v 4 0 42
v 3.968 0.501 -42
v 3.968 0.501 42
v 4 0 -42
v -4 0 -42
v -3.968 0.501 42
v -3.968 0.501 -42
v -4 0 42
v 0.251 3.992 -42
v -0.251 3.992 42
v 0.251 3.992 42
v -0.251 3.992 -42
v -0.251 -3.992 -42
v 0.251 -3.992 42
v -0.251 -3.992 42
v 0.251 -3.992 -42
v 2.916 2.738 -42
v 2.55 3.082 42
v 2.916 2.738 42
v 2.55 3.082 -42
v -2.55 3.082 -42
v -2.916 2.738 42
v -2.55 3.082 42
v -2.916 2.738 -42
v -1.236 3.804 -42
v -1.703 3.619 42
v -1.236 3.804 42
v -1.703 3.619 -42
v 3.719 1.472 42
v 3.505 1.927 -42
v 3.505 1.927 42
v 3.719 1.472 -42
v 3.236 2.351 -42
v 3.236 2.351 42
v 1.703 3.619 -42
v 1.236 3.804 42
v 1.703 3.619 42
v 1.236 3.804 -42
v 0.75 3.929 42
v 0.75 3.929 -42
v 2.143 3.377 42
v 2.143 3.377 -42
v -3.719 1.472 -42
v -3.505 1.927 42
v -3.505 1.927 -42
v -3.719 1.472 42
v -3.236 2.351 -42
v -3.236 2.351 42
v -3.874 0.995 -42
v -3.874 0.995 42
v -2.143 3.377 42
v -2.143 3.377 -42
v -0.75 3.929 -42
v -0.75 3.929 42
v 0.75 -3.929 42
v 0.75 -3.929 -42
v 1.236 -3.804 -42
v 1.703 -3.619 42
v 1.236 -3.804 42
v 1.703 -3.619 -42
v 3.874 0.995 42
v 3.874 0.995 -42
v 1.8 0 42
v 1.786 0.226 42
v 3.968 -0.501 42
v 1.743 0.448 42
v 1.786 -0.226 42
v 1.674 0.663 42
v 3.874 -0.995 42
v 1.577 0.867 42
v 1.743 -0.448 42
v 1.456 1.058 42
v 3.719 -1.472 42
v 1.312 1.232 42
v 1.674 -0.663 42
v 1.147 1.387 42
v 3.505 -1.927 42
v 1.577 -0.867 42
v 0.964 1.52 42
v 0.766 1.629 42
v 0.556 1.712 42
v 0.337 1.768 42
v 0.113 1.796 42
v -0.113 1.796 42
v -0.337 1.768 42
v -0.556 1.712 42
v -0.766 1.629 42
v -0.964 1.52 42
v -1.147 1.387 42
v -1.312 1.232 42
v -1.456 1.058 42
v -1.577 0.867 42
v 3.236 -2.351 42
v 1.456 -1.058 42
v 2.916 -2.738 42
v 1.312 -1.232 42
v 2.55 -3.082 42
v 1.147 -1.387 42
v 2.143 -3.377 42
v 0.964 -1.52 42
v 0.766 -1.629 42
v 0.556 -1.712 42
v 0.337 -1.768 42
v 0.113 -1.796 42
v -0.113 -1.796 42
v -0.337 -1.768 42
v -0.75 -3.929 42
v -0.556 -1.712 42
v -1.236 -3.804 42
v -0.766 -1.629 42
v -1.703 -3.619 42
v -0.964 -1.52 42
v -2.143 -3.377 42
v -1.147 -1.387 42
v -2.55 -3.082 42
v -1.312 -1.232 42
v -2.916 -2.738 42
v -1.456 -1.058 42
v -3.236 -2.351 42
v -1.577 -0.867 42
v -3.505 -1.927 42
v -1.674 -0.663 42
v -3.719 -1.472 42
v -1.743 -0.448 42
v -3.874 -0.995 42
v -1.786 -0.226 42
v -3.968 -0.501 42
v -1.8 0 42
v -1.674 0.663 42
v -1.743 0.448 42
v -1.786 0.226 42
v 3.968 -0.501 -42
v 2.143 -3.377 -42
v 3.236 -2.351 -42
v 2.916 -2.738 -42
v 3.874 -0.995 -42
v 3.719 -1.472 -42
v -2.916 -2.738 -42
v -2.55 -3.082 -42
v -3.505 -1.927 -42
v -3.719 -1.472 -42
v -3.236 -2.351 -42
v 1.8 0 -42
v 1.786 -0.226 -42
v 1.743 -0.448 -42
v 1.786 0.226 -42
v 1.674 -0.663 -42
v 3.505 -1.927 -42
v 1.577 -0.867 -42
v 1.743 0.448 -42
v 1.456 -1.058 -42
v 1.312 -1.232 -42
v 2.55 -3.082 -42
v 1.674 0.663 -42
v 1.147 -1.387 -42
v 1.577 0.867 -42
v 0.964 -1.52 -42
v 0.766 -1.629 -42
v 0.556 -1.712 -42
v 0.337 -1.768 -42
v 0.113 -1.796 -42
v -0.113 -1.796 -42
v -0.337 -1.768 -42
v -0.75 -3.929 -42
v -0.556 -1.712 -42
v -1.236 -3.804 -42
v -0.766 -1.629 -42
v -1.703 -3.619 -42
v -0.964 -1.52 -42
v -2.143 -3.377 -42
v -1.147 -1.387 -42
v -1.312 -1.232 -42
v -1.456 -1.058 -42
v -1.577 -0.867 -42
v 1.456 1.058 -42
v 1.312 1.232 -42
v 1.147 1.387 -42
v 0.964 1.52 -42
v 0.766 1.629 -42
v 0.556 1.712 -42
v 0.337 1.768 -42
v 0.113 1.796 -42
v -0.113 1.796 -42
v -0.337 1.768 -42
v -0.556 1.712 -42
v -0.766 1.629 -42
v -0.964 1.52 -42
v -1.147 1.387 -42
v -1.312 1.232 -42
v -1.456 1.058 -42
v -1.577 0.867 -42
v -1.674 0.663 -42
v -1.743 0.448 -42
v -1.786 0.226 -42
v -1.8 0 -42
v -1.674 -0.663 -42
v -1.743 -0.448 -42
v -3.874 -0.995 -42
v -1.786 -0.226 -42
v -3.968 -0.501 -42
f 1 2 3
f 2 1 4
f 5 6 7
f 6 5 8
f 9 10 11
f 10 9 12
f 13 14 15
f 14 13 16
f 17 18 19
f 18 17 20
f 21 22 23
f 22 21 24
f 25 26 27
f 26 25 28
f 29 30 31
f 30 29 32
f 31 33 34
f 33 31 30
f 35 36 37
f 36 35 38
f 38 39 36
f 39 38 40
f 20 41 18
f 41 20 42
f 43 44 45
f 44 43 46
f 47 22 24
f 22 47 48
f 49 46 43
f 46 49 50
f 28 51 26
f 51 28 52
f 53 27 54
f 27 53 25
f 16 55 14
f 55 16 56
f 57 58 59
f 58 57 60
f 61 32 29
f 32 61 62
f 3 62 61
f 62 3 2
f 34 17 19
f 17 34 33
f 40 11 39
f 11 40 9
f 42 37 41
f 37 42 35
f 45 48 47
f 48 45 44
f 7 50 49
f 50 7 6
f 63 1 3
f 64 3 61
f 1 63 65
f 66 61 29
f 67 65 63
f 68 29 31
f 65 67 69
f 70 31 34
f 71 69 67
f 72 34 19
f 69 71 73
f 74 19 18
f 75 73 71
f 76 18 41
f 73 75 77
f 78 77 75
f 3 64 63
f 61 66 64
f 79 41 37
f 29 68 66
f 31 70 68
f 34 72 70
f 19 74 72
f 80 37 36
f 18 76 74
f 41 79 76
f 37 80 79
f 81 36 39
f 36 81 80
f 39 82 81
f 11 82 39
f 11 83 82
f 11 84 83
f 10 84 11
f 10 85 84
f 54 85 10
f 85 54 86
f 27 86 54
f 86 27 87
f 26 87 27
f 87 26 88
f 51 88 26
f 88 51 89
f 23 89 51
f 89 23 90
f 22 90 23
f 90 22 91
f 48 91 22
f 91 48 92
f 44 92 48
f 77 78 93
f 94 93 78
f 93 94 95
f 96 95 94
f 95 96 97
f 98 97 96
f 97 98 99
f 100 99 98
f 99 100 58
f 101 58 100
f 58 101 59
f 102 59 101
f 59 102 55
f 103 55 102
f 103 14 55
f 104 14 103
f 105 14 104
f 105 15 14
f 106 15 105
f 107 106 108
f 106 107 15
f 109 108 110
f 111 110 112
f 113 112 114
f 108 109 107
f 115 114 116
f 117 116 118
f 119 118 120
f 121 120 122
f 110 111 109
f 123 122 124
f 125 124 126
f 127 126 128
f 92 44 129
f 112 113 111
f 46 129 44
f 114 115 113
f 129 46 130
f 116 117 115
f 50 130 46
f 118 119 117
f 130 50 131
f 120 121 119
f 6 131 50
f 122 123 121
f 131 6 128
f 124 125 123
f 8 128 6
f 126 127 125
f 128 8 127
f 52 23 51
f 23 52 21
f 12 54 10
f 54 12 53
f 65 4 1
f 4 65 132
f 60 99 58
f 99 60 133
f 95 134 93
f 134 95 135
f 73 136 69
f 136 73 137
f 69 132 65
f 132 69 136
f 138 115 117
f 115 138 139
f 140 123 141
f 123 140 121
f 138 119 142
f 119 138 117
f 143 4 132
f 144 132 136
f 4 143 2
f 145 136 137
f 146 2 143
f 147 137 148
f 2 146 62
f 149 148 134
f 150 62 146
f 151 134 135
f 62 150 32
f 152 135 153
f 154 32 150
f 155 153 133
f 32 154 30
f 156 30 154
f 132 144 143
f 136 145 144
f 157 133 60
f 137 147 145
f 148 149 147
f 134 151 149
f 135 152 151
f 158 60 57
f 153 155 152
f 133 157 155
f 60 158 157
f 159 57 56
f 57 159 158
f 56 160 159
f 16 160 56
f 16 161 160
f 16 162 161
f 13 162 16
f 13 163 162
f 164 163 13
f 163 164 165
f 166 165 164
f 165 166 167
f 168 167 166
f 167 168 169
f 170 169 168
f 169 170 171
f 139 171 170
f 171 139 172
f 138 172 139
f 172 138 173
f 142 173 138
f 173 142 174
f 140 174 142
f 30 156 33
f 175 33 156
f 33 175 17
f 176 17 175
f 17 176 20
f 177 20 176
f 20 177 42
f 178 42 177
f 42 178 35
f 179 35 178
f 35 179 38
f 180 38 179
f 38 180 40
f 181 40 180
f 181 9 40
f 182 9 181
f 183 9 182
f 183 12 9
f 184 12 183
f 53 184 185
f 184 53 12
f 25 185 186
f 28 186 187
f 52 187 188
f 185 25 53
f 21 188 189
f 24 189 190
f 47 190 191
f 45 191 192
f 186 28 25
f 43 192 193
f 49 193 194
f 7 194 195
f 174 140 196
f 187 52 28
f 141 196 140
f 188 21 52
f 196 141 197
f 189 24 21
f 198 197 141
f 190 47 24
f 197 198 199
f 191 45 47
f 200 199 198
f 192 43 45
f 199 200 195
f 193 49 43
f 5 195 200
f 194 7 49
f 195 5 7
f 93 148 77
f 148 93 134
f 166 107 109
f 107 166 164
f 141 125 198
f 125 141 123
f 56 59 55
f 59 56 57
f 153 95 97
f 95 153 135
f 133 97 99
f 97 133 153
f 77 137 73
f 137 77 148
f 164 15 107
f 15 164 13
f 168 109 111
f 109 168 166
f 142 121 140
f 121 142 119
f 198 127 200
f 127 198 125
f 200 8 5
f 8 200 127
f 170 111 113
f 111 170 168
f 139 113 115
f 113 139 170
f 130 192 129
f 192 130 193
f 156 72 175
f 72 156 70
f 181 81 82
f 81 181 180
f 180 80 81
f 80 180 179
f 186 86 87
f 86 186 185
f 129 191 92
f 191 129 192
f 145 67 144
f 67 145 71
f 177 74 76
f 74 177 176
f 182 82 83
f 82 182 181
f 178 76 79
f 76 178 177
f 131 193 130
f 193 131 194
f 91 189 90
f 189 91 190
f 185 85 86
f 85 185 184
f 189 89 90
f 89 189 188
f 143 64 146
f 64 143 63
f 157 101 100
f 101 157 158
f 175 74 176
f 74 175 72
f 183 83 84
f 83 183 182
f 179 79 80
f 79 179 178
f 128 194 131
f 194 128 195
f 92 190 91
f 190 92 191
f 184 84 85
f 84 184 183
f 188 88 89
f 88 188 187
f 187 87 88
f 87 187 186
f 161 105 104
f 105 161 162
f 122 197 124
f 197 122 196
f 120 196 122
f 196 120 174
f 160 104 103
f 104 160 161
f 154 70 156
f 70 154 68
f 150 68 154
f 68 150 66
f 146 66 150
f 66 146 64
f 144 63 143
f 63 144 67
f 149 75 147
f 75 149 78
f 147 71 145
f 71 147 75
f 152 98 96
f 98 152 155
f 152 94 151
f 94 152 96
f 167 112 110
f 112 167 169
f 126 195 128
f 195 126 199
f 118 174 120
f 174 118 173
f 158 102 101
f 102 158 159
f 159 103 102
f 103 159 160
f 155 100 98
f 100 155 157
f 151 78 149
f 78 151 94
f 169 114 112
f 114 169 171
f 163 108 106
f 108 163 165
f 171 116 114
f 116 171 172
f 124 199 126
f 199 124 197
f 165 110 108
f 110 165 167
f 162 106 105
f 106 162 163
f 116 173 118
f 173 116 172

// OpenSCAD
$fn = 50;


difference() {
	union() {
		translate(v = [0, 0, -42.0000000000]) {
			cylinder(h = 84, r = 4.0000000000);
		}
	}
	union() {
		translate(v = [0, 0, -100.0000000000]) {
			cylinder(h = 200, r = 1.8000000000);
		}
	}
}
